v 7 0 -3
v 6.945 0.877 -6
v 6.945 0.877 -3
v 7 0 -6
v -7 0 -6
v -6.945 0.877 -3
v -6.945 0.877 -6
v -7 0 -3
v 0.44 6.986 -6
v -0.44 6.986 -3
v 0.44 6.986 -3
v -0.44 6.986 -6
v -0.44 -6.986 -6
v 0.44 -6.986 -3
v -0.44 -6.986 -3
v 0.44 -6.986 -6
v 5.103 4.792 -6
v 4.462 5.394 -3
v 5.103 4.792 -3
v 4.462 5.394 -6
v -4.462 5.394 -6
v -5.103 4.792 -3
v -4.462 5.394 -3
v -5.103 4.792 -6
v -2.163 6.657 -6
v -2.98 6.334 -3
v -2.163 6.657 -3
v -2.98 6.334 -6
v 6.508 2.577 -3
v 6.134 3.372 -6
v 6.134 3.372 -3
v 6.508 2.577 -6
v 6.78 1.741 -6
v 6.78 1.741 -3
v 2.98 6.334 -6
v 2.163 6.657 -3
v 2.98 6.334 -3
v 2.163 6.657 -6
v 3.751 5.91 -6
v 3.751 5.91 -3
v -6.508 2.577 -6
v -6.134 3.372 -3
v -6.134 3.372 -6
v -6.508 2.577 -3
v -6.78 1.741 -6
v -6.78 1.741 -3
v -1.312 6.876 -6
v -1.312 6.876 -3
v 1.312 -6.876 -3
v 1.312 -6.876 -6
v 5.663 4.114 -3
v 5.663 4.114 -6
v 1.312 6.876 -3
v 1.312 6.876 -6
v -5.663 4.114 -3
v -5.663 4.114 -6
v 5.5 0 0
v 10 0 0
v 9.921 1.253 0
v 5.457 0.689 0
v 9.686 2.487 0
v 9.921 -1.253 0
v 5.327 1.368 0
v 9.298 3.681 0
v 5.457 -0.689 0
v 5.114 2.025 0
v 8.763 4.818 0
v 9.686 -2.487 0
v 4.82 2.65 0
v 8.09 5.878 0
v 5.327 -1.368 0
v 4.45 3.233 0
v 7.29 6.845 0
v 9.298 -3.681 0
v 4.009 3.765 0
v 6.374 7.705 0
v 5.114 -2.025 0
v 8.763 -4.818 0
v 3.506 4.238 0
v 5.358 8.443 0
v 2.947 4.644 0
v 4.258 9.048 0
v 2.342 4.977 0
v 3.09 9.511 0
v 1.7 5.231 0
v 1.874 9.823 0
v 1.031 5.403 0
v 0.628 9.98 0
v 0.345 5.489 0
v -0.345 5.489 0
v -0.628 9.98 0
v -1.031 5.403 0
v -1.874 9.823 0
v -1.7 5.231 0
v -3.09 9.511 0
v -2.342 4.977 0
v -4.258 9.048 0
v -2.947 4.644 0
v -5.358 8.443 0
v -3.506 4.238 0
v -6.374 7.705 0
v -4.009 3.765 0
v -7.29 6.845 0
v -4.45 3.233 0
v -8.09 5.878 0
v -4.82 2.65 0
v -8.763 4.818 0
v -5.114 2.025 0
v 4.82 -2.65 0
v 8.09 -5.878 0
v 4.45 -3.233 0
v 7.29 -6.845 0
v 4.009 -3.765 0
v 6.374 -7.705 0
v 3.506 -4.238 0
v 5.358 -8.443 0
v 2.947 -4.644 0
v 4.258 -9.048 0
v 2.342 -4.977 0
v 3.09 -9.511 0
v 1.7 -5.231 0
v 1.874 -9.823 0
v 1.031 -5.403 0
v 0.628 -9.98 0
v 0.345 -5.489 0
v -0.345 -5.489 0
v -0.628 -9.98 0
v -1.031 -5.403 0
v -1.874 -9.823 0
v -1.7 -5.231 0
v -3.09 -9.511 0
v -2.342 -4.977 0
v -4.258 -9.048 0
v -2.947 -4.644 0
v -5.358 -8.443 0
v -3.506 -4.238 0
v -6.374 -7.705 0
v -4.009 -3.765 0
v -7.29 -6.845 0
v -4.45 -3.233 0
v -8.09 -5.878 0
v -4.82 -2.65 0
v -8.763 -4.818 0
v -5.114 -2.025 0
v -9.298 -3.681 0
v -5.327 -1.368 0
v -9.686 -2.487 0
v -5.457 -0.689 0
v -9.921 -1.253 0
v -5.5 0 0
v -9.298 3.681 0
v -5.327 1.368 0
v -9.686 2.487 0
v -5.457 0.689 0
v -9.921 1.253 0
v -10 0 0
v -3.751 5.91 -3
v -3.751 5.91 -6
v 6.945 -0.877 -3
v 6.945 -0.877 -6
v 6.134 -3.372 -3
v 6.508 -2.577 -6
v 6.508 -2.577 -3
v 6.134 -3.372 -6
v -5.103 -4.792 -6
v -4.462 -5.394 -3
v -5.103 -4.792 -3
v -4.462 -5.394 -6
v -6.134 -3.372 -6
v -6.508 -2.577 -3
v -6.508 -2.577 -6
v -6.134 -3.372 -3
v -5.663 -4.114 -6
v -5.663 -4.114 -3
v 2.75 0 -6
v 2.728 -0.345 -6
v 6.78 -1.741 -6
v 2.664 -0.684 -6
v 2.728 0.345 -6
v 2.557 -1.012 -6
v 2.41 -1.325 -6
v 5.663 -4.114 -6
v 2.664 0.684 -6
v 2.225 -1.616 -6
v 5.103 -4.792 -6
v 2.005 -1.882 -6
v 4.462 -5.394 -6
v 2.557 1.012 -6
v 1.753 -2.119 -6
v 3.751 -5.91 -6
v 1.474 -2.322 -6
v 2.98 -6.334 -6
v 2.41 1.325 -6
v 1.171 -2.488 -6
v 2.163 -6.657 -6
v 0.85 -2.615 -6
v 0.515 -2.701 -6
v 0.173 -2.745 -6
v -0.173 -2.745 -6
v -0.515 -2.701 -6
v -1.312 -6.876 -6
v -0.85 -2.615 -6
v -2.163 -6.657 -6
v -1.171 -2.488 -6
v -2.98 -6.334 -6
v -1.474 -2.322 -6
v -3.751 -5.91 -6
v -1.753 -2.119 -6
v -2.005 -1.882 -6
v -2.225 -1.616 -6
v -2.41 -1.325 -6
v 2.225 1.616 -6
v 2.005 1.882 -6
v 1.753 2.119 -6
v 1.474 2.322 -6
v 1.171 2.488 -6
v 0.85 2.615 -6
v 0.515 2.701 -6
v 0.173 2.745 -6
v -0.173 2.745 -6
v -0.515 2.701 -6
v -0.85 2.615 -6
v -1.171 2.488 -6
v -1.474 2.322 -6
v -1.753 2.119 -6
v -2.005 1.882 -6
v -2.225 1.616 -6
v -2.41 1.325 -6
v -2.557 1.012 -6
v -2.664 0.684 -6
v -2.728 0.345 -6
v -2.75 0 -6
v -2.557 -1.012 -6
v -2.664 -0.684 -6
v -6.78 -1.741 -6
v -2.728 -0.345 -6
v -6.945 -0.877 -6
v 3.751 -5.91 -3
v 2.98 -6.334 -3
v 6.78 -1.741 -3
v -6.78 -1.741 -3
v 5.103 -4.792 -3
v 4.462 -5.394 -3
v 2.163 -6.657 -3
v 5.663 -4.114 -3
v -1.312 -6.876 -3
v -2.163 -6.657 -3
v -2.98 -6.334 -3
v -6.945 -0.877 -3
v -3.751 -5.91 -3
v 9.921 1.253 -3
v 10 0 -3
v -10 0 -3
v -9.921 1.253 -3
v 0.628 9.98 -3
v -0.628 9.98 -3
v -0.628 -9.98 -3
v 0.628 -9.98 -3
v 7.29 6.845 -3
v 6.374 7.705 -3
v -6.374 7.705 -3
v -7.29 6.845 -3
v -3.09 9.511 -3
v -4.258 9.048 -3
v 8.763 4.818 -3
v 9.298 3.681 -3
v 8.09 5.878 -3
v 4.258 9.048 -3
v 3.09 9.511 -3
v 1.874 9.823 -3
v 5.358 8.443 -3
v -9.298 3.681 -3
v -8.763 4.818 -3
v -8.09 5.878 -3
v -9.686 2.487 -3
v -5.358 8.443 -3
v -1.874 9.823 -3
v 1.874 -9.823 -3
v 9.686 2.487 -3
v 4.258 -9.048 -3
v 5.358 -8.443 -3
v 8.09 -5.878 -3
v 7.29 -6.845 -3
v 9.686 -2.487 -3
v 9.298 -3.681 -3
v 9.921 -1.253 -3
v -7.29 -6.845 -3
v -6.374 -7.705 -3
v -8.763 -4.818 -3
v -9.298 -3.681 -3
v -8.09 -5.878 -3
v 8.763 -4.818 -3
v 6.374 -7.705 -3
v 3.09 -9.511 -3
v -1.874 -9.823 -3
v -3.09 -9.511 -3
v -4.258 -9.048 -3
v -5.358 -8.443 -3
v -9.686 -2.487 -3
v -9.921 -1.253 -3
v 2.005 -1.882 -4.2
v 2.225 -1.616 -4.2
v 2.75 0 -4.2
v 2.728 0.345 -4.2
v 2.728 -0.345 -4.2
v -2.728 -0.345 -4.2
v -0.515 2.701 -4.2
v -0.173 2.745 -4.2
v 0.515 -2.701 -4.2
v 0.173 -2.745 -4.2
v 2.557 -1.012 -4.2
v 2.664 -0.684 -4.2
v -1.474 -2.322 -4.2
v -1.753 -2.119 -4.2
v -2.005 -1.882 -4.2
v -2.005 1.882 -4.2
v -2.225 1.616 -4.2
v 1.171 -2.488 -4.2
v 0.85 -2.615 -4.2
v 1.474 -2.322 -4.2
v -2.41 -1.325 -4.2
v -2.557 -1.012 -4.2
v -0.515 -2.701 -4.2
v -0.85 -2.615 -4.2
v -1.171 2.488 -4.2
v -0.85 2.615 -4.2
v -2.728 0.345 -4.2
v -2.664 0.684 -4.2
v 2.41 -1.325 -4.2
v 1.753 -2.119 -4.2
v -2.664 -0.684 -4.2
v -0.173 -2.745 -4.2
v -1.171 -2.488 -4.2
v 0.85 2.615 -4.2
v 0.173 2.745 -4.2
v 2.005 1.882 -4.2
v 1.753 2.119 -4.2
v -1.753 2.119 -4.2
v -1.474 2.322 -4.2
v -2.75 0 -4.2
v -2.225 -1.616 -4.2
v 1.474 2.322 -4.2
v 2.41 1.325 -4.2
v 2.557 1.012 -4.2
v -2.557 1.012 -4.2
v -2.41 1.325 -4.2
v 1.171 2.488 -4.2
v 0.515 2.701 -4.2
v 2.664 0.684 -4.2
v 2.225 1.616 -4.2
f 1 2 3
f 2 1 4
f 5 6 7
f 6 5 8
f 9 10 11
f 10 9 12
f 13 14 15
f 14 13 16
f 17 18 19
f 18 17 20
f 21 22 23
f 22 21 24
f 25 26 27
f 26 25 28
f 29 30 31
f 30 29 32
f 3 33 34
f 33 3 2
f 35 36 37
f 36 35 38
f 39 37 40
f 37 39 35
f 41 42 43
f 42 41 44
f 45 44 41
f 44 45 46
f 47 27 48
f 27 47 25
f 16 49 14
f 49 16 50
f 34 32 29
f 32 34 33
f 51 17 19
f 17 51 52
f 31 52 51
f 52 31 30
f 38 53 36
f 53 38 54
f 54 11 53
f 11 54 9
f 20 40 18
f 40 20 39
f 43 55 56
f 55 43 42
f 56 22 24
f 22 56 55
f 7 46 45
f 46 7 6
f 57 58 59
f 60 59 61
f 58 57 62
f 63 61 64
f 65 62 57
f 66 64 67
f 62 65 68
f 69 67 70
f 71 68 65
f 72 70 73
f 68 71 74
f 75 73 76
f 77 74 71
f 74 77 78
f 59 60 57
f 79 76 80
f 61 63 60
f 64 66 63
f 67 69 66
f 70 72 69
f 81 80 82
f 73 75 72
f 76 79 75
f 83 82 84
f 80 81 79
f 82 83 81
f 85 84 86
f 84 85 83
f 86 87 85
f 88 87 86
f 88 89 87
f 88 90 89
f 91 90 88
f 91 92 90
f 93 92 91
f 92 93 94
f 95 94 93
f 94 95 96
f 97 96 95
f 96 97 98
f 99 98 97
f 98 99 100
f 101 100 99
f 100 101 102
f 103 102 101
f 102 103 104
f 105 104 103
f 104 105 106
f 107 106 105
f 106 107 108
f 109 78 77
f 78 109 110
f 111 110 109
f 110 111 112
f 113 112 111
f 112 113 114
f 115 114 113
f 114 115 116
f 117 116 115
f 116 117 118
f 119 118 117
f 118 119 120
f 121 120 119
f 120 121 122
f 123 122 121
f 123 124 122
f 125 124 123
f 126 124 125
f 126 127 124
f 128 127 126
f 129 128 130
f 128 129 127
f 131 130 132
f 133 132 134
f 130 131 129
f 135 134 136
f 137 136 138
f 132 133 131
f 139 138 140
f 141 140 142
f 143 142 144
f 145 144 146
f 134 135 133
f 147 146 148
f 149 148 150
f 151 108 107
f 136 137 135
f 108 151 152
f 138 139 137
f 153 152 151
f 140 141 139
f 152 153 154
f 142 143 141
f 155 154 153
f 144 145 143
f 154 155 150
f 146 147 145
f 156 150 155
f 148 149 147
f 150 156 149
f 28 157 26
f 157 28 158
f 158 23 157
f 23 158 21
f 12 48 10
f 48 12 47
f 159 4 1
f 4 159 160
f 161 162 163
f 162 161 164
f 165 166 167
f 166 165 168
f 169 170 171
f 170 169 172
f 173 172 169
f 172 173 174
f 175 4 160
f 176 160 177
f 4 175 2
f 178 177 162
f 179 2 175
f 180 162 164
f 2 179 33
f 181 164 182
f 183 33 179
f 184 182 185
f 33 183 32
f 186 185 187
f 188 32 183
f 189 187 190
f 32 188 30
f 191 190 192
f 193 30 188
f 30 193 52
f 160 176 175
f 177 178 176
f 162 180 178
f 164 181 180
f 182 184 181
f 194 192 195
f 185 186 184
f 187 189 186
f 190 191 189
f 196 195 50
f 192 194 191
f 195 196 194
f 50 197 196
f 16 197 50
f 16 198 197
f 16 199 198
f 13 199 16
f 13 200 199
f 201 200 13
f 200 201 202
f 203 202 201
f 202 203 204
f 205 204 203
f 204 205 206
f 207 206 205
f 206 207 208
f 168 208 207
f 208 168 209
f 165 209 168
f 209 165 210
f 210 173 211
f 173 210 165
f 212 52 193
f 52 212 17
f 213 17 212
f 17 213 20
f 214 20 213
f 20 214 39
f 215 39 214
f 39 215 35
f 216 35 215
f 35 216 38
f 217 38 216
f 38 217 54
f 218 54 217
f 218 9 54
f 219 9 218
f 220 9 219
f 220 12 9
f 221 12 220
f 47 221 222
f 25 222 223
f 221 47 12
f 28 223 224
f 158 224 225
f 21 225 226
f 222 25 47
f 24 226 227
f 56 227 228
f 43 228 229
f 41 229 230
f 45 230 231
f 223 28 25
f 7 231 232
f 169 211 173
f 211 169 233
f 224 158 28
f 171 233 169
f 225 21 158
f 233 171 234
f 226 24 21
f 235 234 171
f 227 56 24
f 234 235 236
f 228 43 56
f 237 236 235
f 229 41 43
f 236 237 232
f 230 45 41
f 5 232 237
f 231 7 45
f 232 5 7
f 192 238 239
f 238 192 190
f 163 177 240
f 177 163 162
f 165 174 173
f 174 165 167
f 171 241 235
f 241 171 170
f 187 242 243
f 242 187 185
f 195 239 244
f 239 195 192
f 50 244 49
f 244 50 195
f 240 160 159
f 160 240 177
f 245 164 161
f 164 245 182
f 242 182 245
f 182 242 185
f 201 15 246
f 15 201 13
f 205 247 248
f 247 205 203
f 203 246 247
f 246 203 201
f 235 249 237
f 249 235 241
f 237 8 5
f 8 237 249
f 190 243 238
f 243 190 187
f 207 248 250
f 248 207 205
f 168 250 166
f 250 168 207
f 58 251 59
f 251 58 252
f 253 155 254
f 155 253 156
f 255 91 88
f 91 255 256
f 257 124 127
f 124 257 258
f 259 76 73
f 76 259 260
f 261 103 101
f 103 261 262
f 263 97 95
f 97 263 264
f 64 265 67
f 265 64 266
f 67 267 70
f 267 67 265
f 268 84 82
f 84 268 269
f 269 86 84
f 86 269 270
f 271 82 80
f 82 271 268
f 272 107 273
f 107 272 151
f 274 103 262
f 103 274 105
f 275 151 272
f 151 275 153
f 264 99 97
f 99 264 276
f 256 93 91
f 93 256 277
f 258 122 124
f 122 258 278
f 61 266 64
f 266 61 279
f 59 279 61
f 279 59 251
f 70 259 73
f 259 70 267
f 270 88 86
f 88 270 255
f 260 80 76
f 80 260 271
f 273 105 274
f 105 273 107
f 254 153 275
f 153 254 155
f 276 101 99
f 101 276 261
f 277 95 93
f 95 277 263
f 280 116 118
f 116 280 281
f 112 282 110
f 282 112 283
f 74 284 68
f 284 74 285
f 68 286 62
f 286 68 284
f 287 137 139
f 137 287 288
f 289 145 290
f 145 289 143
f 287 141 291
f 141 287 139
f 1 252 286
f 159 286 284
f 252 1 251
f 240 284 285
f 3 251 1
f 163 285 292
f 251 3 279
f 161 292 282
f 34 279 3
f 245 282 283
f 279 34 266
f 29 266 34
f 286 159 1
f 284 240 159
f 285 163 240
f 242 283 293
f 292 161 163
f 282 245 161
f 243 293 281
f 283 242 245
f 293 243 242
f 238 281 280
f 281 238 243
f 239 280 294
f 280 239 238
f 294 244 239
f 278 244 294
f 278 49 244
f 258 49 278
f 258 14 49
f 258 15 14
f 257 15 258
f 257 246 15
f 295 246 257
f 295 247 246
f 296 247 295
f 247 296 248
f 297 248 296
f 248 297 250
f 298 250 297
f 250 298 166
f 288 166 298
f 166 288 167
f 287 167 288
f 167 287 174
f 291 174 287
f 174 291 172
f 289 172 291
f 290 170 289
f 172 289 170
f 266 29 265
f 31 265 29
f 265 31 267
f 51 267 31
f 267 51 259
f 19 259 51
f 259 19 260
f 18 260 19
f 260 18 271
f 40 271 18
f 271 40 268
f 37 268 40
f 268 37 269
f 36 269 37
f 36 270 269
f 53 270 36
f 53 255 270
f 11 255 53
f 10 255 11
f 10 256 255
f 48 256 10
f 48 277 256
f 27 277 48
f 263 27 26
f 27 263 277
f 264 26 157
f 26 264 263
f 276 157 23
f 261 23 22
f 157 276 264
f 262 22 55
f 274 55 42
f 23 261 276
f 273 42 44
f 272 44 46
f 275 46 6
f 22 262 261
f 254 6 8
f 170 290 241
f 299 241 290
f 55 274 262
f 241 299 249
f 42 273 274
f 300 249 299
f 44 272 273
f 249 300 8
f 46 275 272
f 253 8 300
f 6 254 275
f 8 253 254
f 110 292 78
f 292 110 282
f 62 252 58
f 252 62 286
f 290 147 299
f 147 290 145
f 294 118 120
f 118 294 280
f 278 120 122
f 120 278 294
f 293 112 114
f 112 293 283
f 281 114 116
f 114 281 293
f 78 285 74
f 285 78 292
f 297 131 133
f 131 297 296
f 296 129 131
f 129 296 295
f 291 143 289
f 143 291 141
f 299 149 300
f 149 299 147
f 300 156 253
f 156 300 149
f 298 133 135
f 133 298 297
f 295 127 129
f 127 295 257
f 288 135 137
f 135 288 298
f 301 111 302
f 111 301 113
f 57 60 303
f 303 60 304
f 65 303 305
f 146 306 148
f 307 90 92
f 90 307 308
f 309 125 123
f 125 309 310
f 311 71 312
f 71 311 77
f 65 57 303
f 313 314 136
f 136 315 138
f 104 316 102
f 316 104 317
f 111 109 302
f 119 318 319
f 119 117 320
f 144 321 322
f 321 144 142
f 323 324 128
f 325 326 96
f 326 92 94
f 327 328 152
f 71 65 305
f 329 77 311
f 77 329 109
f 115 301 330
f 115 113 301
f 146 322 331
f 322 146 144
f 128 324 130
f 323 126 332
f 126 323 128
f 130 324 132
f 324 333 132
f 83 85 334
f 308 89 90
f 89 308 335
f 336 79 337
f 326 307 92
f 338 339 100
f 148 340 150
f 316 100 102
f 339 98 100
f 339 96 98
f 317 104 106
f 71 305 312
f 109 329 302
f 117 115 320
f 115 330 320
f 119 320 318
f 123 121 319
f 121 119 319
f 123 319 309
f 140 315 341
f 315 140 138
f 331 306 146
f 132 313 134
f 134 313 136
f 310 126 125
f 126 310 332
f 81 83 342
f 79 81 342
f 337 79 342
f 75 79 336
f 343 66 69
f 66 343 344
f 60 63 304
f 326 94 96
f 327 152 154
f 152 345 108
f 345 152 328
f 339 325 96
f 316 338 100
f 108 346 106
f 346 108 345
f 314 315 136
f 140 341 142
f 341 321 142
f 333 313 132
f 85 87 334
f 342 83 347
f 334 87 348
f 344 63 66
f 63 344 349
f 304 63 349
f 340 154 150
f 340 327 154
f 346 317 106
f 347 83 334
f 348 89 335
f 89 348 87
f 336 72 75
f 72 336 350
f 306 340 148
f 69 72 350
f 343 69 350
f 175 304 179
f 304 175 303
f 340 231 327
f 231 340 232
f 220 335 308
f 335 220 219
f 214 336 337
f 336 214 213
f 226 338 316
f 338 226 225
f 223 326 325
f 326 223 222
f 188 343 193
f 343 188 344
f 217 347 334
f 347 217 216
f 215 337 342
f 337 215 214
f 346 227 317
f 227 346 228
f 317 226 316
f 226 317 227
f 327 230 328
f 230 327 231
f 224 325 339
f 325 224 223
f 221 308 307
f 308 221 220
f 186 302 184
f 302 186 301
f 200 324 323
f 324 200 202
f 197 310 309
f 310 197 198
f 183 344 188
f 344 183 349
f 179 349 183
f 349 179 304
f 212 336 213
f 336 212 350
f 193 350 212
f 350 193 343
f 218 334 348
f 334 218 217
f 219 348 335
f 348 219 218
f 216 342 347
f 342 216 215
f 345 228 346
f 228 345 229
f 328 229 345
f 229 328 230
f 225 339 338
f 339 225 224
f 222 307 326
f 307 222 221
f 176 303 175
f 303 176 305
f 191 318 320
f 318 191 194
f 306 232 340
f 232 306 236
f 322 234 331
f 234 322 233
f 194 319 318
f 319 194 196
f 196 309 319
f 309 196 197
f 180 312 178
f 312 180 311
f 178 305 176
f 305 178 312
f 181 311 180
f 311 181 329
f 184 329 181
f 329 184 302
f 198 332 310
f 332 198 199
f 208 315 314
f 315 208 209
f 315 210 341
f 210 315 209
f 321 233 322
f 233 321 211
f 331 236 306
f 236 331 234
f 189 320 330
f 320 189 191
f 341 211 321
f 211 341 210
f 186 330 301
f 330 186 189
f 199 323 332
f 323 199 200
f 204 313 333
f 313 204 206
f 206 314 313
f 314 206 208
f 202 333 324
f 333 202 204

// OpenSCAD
$fn = 50;


difference() {
	union() {
		translate(v = [0, 0, -6.0000000000]) {
			cylinder(h = 6, r = 7.0000000000);
		}
		translate(v = [0, 0, -3.0000000000]) {
			cylinder(h = 3, r = 10.0000000000);
		}
	}
	union() {
		translate(v = [0, 0, 0]) {
			rotate(a = [0, 0, 0]) {
				difference() {
					union() {
						#translate(v = [0, 0, -6.0000000000]) {
							cylinder(h = 6, r = 2.2500000000);
						}
						#translate(v = [0, 0, -4.2000000000]) {
							cylinder(h = 4.2000000000, r = 7.0000000000, r1 = 2.7500000000, r2 = 5.5000000000);
						}
						#translate(v = [0, 0, -6.0000000000]) {
							cylinder(h = 6, r = 2.7500000000);
						}
						#translate(v = [0, 0, -6.0000000000]) {
							cylinder(h = 6, r = 2.2500000000);
						}
					}
					union();
				}
			}
		}
	}
}
